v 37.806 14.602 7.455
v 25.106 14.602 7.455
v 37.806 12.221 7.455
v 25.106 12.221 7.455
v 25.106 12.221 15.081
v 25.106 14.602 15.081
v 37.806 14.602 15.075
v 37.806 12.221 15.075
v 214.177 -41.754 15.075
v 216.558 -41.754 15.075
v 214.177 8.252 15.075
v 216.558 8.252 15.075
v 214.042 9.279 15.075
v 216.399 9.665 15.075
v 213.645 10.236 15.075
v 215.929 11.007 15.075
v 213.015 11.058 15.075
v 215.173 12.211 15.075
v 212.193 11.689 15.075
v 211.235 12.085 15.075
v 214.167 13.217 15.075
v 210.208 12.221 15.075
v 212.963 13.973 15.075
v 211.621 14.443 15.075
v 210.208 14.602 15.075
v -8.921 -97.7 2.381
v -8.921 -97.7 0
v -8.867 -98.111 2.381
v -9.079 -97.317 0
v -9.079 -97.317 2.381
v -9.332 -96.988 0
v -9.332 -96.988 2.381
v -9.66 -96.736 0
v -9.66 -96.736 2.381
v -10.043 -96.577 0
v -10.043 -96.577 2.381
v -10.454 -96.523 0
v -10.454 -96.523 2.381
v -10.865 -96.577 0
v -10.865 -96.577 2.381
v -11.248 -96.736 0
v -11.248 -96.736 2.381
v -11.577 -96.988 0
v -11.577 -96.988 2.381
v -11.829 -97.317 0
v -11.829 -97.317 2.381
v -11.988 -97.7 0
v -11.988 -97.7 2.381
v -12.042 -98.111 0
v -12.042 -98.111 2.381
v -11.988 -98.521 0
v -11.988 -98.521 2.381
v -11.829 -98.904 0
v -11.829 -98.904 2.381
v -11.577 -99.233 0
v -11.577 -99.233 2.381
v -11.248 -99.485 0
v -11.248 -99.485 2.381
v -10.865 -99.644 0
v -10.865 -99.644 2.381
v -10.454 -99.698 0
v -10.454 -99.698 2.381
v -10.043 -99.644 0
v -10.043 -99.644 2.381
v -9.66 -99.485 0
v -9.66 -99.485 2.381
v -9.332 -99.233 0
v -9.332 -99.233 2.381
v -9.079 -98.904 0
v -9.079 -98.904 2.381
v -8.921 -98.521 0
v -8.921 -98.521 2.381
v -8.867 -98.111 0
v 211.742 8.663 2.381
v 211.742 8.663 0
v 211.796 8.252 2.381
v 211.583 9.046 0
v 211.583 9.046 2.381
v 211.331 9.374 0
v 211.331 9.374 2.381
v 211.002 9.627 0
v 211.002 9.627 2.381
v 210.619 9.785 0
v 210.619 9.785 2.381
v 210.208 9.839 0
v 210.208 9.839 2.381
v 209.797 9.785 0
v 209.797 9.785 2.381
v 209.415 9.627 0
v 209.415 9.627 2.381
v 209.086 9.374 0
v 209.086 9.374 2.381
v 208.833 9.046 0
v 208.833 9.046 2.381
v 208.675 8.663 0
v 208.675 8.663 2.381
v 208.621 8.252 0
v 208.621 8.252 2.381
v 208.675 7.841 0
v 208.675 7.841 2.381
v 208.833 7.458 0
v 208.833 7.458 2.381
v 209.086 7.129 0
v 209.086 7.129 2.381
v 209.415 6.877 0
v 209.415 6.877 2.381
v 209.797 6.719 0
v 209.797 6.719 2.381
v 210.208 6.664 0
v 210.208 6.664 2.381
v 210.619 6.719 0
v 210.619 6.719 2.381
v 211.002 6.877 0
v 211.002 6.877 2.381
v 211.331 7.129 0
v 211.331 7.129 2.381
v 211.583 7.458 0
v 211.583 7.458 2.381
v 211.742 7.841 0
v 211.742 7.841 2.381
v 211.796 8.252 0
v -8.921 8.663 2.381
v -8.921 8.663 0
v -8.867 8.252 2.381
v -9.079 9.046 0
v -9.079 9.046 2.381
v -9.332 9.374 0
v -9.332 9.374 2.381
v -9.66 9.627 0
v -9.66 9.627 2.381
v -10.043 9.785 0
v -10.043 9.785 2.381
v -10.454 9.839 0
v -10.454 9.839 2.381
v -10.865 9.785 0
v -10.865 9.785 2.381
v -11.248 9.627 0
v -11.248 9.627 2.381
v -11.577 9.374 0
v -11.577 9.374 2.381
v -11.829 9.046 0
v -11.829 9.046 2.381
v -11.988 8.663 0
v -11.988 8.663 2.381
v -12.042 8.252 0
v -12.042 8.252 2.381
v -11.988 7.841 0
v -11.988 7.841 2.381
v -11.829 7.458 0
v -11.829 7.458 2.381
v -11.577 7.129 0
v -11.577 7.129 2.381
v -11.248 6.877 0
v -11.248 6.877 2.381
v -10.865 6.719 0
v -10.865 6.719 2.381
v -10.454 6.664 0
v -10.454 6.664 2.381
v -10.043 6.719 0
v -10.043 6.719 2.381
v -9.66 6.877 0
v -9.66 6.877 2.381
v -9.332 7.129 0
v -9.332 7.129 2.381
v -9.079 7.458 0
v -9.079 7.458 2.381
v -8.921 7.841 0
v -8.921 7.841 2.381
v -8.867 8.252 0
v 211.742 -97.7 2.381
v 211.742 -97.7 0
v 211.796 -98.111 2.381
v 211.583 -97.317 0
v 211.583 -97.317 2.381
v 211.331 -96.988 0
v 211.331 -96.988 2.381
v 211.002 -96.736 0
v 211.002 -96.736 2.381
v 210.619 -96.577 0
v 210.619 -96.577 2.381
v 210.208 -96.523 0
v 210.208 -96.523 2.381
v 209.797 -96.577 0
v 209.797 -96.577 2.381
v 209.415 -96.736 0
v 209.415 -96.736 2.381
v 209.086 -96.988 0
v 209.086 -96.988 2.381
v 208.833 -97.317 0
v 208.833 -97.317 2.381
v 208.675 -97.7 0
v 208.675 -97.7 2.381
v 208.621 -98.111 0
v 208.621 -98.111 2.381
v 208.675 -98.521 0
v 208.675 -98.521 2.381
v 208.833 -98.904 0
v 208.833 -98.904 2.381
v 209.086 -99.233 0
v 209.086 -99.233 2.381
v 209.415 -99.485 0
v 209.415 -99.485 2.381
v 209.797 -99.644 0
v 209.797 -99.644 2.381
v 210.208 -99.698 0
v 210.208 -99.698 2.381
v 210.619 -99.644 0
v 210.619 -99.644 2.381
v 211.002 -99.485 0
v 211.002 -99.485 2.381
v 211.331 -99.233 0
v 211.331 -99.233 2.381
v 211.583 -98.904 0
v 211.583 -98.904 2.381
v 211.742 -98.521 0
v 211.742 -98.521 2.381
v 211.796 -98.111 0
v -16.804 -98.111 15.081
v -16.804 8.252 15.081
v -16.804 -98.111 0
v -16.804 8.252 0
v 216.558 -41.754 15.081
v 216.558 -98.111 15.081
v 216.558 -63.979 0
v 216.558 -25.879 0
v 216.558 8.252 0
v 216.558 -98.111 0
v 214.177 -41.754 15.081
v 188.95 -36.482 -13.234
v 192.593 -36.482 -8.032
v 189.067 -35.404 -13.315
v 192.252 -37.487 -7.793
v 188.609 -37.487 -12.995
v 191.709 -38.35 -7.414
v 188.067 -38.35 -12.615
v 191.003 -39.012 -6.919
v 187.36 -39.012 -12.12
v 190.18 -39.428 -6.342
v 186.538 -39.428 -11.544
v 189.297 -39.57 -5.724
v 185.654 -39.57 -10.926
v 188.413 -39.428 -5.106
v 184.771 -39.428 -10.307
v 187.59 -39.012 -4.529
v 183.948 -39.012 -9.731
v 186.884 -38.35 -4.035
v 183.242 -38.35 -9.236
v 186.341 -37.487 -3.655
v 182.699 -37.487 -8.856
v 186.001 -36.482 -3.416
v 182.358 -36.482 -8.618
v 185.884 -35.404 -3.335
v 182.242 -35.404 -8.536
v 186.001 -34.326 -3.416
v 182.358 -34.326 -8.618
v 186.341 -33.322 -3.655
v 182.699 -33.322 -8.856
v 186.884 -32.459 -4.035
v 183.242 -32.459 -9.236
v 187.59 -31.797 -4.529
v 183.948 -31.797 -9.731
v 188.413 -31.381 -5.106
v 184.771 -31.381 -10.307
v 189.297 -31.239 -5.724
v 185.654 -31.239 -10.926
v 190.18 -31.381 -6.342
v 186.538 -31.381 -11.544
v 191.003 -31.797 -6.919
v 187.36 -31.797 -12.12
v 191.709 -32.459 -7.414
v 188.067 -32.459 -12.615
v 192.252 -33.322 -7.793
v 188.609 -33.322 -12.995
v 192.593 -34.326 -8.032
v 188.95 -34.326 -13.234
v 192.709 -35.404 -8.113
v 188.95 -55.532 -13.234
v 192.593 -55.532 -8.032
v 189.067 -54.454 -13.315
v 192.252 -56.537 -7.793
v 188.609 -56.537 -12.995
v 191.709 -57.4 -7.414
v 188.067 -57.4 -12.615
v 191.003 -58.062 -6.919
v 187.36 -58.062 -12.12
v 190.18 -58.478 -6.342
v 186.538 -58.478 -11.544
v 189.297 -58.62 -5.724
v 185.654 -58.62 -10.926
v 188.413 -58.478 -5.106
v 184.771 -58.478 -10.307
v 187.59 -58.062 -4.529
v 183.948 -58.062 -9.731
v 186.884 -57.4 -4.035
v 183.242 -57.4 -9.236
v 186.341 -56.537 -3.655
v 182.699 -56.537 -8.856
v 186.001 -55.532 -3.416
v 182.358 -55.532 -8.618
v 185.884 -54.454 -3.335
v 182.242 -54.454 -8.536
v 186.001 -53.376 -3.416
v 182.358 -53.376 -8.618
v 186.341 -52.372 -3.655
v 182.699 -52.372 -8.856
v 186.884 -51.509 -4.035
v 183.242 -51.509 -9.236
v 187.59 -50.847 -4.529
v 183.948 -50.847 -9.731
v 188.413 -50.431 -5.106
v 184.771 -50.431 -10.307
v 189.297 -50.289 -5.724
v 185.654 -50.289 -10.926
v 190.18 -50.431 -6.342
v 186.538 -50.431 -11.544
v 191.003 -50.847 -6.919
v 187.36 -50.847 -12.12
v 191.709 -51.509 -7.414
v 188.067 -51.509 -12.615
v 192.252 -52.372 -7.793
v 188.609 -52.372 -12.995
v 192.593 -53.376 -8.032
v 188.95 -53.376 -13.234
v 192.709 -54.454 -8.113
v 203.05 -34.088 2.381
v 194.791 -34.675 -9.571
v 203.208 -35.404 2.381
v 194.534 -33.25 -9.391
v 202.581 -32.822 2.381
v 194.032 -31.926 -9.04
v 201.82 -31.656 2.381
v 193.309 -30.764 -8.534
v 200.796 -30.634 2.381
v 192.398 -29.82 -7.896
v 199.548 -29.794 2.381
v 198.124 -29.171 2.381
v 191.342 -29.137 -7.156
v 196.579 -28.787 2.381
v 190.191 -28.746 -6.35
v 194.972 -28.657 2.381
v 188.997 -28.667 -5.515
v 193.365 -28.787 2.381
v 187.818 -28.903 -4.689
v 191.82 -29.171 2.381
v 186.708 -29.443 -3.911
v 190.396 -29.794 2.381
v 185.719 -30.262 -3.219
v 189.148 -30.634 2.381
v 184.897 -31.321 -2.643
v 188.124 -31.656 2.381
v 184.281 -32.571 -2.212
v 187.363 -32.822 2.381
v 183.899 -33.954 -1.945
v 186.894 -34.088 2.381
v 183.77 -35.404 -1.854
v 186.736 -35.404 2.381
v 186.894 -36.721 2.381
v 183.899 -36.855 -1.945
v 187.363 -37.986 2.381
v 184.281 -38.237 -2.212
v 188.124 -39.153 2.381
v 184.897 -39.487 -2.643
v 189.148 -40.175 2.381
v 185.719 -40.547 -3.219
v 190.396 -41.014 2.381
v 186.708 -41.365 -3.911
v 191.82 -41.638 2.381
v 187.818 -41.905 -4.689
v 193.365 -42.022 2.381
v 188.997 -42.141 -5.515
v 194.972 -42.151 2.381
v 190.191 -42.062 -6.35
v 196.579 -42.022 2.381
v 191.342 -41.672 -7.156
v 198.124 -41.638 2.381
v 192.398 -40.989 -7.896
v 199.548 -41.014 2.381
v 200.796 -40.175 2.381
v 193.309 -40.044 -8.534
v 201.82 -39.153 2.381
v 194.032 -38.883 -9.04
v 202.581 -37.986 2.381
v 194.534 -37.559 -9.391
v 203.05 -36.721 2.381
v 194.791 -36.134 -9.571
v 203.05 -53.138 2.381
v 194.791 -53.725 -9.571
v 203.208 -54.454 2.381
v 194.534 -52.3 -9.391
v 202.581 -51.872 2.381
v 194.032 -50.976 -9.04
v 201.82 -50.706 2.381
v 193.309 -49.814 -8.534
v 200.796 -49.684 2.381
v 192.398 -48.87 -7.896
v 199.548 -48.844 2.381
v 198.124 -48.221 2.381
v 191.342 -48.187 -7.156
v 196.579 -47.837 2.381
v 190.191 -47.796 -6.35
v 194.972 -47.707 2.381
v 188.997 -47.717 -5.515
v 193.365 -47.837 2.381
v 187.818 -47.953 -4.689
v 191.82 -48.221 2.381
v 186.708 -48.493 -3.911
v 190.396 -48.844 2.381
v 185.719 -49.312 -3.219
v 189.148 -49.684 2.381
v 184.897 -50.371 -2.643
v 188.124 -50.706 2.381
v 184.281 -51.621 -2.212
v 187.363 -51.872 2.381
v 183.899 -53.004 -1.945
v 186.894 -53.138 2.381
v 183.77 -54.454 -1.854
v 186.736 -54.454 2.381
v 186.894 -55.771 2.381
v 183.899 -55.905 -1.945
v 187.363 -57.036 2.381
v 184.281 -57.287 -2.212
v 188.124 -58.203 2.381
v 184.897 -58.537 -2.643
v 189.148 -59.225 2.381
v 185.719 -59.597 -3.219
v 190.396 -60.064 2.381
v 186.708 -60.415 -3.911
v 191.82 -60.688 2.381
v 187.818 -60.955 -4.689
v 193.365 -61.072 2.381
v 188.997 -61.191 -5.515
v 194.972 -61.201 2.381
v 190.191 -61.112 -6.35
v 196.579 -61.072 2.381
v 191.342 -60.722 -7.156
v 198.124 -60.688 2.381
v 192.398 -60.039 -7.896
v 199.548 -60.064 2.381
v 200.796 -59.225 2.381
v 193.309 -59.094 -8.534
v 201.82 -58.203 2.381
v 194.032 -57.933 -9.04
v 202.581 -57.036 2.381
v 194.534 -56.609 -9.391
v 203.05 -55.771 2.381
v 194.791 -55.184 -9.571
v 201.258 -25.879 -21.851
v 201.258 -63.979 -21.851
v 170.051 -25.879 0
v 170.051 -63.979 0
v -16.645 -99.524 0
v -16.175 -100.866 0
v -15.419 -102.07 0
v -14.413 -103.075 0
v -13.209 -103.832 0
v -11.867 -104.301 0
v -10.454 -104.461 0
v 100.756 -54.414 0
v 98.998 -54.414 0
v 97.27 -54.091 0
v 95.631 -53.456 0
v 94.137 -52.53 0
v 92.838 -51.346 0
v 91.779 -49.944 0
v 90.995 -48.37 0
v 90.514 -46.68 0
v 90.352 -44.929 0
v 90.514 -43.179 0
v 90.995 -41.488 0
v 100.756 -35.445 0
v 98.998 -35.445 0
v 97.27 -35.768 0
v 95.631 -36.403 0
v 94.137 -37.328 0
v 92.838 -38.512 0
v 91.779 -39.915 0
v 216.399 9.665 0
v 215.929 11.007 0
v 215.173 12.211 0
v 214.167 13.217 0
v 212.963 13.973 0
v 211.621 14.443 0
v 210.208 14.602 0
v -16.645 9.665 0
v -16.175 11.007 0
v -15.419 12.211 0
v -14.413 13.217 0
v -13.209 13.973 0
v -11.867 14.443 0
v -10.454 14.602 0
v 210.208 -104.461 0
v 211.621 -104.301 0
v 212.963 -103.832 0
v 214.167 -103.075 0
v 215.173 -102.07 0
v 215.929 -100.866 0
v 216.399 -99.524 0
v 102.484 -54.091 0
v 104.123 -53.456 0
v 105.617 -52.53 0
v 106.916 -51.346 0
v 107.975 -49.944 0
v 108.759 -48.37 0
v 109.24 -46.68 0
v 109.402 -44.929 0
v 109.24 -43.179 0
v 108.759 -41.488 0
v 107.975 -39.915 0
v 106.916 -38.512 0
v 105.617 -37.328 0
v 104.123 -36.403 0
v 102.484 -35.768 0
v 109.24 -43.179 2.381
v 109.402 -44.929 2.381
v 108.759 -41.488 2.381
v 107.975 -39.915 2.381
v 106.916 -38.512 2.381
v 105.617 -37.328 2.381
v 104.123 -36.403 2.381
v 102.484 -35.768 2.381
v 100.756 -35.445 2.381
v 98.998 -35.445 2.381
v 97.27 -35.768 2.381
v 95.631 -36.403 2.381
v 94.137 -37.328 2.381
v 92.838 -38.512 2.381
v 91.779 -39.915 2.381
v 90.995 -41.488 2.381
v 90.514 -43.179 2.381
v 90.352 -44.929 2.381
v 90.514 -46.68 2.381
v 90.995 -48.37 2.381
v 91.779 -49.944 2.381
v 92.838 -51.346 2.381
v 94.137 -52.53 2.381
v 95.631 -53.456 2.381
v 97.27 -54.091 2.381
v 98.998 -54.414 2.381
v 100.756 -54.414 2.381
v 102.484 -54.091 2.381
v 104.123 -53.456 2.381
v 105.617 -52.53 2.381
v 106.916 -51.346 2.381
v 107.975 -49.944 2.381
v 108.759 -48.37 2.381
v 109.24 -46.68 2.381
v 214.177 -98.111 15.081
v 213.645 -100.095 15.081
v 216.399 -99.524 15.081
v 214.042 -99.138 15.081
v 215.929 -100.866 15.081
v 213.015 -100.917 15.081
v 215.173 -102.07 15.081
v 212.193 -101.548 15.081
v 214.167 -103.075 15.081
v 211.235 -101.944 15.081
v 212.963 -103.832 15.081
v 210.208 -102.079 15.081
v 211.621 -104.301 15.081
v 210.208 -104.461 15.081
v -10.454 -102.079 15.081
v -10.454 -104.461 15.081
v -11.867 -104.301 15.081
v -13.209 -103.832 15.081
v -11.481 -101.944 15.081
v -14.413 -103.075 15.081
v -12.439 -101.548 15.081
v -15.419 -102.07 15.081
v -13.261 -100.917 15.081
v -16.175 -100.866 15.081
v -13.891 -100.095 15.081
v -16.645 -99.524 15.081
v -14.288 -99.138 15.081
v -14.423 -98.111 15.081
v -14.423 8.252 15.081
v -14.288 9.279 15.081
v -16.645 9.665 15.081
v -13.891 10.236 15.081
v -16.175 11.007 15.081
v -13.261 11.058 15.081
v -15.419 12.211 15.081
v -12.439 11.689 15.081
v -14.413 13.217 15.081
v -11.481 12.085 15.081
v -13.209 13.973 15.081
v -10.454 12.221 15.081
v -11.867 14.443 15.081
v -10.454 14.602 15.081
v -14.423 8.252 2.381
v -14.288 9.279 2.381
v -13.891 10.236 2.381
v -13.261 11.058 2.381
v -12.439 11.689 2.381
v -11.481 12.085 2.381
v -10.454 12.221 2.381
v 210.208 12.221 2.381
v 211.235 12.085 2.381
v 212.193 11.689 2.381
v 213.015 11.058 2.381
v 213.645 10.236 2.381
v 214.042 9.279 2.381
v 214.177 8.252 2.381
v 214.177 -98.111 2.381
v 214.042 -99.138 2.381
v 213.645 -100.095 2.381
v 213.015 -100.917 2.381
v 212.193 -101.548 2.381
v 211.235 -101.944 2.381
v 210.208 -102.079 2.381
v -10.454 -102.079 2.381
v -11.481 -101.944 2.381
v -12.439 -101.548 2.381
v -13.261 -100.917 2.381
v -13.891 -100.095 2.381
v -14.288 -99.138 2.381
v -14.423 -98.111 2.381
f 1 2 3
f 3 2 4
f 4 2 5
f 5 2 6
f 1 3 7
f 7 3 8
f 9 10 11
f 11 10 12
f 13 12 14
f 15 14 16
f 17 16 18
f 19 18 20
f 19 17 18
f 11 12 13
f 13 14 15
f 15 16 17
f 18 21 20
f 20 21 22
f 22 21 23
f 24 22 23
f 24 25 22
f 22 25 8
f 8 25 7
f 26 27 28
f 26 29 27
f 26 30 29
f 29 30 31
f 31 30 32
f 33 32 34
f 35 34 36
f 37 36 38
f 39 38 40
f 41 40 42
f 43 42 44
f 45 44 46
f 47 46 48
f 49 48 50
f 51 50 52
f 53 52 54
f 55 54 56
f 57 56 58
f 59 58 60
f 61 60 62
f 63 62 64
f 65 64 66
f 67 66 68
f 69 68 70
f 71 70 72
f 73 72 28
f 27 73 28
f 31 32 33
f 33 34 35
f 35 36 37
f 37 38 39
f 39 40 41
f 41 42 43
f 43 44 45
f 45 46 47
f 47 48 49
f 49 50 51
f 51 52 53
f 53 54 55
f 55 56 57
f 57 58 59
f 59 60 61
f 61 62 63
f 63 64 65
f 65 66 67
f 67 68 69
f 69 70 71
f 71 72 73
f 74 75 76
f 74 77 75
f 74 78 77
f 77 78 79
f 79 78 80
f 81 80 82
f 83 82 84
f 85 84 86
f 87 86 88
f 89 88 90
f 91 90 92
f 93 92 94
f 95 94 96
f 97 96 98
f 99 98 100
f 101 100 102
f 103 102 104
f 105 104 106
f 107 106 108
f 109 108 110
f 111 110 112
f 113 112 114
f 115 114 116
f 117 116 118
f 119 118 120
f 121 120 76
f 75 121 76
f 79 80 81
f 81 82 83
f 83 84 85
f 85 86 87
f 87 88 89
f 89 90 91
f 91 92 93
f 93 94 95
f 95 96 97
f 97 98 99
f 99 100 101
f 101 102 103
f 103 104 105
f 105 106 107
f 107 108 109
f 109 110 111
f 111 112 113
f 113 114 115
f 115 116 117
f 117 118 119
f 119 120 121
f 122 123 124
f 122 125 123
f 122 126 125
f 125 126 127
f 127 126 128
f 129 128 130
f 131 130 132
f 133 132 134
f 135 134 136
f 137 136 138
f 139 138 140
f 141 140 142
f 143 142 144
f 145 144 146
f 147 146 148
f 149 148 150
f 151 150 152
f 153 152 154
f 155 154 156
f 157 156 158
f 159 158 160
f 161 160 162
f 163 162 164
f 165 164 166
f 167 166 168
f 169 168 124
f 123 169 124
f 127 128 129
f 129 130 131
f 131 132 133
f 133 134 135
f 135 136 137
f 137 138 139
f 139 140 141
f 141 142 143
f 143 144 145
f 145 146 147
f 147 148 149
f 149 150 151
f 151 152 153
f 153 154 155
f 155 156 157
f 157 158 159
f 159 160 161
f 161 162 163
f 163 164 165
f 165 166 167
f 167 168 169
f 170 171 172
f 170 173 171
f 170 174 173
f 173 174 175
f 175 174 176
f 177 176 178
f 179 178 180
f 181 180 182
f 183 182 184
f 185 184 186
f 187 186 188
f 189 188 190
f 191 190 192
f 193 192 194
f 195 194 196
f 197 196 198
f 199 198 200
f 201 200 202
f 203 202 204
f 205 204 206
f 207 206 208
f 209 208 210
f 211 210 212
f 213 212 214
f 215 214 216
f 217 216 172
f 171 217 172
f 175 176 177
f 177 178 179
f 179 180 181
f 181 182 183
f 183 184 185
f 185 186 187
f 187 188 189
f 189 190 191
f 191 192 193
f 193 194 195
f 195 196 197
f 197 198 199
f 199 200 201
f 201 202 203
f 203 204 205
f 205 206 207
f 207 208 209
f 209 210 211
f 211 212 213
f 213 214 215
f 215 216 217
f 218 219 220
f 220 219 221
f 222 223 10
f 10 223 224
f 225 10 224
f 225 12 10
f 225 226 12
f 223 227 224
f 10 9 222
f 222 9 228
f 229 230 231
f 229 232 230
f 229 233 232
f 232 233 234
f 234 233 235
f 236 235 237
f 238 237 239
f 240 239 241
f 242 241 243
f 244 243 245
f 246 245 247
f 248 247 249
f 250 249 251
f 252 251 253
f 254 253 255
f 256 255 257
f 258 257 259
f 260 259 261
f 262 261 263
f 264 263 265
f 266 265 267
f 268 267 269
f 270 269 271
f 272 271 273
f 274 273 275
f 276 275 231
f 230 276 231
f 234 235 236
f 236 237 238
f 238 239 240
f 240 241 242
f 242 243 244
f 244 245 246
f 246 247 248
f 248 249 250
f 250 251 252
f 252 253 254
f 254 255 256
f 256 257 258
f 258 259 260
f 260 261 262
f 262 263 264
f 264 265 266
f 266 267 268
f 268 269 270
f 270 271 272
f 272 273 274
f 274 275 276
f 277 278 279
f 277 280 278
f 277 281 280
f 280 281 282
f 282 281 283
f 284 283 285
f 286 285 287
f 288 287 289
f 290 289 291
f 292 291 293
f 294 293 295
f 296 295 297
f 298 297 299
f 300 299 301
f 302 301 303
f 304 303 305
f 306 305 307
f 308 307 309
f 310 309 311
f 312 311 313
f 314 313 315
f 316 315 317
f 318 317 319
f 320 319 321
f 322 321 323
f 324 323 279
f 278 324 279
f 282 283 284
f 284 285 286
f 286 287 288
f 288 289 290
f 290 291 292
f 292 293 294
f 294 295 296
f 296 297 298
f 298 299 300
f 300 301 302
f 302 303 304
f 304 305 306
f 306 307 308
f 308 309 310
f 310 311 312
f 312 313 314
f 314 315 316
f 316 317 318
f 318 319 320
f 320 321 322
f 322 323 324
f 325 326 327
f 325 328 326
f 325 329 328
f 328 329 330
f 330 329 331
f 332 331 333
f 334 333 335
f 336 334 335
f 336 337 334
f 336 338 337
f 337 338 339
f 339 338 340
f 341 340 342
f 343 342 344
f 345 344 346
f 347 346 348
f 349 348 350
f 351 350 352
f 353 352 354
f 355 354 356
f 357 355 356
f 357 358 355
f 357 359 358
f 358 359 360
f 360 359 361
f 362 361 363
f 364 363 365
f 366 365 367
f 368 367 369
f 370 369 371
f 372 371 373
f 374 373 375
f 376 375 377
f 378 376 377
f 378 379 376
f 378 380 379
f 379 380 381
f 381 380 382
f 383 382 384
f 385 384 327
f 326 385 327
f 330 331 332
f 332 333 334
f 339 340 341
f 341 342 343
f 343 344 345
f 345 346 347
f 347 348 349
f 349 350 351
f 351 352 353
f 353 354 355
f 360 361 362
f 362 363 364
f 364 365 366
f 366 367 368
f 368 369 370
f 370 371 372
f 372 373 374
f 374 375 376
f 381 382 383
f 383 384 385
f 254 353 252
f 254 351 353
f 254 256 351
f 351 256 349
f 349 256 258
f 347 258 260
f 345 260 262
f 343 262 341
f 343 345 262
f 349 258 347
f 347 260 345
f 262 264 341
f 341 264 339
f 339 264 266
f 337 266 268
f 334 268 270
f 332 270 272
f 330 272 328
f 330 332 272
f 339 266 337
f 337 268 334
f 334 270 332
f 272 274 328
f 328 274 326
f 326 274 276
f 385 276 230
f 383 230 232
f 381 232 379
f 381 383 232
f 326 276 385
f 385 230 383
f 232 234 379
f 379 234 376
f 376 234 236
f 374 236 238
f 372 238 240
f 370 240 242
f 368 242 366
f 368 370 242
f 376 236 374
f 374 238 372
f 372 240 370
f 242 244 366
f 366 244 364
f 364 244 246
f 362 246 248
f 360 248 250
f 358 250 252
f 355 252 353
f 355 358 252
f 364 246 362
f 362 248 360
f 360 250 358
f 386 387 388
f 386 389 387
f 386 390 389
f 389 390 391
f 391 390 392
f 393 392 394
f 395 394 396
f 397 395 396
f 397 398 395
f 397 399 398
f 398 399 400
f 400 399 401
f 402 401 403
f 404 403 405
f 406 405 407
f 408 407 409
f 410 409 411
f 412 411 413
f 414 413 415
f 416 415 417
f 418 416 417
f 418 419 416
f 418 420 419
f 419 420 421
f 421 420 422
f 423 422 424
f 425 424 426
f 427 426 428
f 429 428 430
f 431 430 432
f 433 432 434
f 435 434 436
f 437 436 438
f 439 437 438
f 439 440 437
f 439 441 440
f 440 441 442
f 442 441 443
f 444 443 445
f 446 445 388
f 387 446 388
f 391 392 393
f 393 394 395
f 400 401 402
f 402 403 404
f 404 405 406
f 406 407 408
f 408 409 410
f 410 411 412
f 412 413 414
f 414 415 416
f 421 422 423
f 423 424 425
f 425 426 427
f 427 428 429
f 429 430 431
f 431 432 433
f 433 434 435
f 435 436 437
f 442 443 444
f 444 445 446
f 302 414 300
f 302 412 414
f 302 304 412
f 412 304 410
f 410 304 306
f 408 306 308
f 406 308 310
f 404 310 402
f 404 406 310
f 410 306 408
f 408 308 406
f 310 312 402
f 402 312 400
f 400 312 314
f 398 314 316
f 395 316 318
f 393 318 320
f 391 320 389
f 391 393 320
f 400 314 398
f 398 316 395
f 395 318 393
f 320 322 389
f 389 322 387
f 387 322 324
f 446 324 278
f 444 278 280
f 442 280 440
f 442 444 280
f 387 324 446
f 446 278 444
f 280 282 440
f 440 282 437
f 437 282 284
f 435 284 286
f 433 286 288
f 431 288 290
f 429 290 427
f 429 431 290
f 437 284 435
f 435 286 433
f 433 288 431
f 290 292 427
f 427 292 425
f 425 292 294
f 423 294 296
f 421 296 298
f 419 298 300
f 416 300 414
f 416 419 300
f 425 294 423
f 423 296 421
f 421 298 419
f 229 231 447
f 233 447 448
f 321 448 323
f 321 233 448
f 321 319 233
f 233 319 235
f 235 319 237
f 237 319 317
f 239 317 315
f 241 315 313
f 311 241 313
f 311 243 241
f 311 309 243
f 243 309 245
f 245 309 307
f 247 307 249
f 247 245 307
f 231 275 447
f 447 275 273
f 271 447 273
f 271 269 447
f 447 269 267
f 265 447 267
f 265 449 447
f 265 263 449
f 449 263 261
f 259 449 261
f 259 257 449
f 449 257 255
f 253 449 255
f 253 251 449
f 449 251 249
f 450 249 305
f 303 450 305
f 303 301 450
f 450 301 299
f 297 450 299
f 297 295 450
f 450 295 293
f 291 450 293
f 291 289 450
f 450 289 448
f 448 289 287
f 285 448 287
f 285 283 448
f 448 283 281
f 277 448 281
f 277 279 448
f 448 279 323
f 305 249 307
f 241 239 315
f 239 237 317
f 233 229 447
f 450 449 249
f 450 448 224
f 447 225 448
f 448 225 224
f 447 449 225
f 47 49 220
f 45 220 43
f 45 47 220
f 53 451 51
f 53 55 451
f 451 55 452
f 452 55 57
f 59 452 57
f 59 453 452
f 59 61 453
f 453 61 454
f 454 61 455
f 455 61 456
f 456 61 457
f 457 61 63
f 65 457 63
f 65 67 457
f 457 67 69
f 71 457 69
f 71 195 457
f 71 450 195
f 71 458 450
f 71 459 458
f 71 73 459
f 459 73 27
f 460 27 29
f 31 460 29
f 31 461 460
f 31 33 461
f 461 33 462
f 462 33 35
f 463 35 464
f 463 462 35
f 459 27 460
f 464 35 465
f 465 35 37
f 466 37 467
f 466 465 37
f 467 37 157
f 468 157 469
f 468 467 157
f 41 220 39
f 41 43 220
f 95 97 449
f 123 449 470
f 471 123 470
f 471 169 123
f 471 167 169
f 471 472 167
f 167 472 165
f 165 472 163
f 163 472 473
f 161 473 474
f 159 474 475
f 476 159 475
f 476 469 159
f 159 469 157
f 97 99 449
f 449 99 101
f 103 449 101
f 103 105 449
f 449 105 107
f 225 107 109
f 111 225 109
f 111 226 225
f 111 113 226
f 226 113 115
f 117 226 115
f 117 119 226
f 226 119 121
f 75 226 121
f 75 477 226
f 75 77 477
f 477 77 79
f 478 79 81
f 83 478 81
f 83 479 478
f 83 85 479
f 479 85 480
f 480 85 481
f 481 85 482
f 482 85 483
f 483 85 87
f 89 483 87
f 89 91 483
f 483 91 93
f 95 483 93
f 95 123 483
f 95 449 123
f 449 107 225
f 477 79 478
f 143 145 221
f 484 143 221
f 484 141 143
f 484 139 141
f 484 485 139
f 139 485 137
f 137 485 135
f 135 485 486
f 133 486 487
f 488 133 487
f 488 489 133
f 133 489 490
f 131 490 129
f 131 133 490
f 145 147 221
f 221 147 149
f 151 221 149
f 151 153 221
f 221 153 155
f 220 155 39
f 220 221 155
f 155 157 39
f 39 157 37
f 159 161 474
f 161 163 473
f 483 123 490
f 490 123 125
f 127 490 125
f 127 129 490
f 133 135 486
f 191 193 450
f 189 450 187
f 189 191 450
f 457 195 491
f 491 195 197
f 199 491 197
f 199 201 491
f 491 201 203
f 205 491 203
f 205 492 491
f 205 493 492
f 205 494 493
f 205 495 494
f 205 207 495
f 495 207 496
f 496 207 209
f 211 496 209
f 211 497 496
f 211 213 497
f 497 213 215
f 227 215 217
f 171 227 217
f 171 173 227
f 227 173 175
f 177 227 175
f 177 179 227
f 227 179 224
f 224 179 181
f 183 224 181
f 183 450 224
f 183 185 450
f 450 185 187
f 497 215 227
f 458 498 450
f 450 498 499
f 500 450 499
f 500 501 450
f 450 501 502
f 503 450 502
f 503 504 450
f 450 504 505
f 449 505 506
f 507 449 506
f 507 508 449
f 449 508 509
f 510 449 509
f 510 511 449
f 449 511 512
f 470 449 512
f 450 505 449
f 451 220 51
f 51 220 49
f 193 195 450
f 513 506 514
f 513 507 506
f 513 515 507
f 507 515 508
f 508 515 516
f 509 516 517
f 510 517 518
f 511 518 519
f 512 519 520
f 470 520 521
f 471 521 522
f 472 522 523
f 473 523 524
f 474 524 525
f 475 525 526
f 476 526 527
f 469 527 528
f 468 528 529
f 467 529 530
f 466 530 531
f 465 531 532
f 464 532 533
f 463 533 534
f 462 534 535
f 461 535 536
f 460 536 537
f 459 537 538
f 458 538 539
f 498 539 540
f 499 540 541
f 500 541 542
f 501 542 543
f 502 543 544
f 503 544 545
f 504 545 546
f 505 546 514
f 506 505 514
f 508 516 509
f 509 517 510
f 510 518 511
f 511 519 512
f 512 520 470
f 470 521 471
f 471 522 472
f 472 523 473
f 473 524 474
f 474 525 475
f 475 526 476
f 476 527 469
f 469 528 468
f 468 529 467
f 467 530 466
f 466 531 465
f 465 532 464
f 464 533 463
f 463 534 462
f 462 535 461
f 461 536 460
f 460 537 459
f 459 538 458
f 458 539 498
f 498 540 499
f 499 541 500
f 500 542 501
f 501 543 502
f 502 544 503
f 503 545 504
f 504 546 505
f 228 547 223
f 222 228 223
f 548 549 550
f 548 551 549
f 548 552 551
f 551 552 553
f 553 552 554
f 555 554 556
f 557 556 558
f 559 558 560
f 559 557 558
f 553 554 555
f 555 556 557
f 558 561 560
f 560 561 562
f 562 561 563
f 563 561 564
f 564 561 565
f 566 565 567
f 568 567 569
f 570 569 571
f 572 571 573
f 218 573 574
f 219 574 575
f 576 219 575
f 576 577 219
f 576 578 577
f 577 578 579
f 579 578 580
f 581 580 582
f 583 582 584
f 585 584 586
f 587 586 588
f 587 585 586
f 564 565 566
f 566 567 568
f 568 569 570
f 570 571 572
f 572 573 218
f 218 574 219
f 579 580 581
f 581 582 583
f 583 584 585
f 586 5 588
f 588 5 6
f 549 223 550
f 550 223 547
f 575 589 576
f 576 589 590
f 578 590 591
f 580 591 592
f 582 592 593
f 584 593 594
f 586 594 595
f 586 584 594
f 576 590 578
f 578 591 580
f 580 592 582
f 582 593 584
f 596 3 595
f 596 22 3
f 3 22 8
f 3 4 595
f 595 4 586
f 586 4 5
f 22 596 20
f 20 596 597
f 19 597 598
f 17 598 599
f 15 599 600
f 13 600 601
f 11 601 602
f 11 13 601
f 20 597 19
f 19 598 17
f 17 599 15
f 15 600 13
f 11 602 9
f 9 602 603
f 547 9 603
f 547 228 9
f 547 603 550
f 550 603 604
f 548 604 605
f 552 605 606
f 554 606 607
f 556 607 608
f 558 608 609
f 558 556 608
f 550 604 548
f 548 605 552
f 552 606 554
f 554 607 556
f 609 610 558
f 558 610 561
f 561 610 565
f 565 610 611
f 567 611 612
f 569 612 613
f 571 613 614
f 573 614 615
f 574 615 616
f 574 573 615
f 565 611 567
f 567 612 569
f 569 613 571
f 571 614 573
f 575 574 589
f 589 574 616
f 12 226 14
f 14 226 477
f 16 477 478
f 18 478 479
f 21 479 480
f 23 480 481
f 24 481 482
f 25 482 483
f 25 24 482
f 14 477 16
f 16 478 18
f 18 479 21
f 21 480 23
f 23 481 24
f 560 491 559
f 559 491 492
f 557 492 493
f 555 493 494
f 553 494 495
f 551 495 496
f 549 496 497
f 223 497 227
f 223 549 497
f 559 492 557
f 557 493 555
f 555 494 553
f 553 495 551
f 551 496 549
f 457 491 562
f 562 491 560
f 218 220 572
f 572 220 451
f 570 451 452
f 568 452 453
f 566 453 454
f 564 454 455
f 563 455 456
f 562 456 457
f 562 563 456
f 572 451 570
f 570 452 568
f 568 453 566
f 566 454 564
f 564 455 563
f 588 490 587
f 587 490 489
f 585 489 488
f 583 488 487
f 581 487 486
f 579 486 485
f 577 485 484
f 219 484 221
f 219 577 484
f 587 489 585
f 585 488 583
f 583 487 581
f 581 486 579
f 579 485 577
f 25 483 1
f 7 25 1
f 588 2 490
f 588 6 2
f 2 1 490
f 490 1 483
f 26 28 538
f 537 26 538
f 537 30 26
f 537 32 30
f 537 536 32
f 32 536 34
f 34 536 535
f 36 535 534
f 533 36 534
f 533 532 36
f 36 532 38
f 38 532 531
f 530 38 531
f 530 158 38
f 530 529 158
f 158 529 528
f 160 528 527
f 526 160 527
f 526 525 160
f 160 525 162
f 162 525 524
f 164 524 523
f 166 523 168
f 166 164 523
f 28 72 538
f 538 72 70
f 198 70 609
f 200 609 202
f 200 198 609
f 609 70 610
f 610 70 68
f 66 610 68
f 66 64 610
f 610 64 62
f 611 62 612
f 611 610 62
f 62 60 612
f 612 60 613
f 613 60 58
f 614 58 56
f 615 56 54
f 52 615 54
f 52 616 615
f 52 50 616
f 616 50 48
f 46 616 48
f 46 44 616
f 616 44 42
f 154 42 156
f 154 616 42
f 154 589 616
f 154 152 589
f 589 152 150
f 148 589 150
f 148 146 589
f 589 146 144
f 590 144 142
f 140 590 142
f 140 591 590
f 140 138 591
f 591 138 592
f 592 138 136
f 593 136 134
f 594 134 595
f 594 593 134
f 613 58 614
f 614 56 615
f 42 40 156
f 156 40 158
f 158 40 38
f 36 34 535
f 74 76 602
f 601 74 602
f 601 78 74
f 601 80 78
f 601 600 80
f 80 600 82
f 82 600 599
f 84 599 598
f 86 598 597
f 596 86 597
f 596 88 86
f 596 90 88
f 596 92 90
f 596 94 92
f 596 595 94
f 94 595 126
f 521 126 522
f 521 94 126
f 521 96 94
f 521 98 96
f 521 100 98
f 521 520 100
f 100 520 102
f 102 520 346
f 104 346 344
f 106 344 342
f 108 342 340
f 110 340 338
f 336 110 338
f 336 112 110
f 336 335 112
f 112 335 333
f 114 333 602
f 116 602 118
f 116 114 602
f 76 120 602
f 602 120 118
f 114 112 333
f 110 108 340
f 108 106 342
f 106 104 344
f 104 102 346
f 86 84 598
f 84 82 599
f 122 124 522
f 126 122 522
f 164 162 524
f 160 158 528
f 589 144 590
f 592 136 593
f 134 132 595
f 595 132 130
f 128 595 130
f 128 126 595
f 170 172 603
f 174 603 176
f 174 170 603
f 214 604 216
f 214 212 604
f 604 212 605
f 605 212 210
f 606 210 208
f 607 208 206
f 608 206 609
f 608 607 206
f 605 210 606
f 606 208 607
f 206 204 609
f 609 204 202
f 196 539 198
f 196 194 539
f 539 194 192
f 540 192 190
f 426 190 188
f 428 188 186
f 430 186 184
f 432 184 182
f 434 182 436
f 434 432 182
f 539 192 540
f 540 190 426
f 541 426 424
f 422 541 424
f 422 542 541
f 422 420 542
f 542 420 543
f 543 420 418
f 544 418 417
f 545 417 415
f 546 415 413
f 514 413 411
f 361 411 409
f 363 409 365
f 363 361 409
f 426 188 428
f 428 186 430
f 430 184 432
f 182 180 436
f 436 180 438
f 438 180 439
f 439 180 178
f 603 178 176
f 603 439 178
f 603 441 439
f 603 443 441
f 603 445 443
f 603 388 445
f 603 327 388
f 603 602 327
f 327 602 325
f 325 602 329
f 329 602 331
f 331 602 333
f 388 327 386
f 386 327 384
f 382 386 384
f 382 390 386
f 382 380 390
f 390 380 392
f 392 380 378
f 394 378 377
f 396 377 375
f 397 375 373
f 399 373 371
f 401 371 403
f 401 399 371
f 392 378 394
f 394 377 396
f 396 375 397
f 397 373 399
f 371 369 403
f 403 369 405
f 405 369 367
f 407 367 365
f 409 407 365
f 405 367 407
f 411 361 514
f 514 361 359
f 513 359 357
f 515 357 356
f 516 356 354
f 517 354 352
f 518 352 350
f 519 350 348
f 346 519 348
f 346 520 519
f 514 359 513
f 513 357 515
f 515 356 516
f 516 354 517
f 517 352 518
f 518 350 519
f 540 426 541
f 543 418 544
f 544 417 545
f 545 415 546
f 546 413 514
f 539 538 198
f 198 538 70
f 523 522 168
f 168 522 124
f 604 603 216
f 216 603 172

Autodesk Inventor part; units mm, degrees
ref_plane "YZ Plane" through (0, 0, 0) normal (1, 0, 0) x (0, 1, 0)
ref_plane "XZ Plane" through (0, 0, 0) normal (0, 1, 0) x (-1, 0, 0)
sketch "Sketch1" plane through (0, 0, 0) normal (0, 0, 1) x (1, 0, 0)
  line L0 (-10.4542, 14.6019) -> (210.2083, 14.6019)
  line L1 (216.5583, 8.2519) -> (216.5583, -98.1106)
  line L2 (210.2083, -104.4606) -> (-10.4542, -104.4606)
  line L3 (-16.8042, -98.1106) -> (-16.8042, 8.2519)
  line L4 (99.877, 12.2207) -> (-10.4542, 12.2207)
  line L5 (-14.423, 8.2519) -> (-14.423, -44.9293)
  line L6 (99.877, 12.2207) -> (210.2083, 12.2207)
  line L7 (214.177, 8.2519) -> (214.177, -44.9293)
  line L8 (99.877, -102.0793) -> (210.2083, -102.0793)
  line L9 (214.177, -98.1106) -> (214.177, -44.9293)
  line L10 (99.877, -102.0793) -> (-10.4542, -102.0793)
  line L11 (-14.423, -98.1106) -> (-14.423, -44.9293)
  arc A0 (-10.4542, 14.6019) -> (-16.8042, 8.2519) centre (-10.4542, 8.2519) ccw
  arc A1 (216.5583, 8.2519) -> (210.2083, 14.6019) centre (210.2083, 8.2519) ccw
  arc A2 (210.2083, -104.4606) -> (216.5583, -98.1106) centre (210.2083, -98.1106) ccw
  arc A3 (-16.8042, -98.1106) -> (-10.4542, -104.4606) centre (-10.4542, -98.1106) ccw
  arc A4 (-10.4542, 12.2207) -> (-14.423, 8.2519) centre (-10.4542, 8.2519) ccw
  arc A5 (214.177, 8.2519) -> (210.2083, 12.2207) centre (210.2083, 8.2519) ccw
  arc A6 (210.2083, -102.0793) -> (214.177, -98.1106) centre (210.2083, -98.1106) ccw
  arc A7 (-14.423, -98.1106) -> (-10.4542, -102.0793) centre (-10.4542, -98.1106) ccw
  point P0 (0, 0)
  point P1 (-16.8042, 14.6019)
  point P2 (216.5583, -104.4606)
  point P3 (216.5583, 14.6019)
  point P4 (-16.8042, -104.4606)
  dimension "d0" = 233.3625
  dimension "d1" = 119.0625
  dimension "d9" = 6.35
  dimension "d10" = 3.9688
extrude "Extrusion1" add sketch "Sketch1" along normal blind 2.3813 contours L0 A1 L1 A2 L2 A3 L3 A0 | L6 A5 L7 L9 A6 L8 L10 A7 L11 L5 A4 L4
sketch "Sketch2" plane through (0, 0, 2.3813) normal (0, 0, 1) x (1, 0, 0)
  line L0 (210.2083, 14.6019) -> (-10.4542, 14.6019) projected
  arc A0 (-10.4542, 14.6019) -> (-16.8042, 8.2519) centre (-10.4542, 8.2519) ccw projected
  line L1 (-16.8042, 8.2519) -> (-16.8042, -98.1106) projected
  arc A1 (-16.8042, -98.1106) -> (-10.4542, -104.4606) centre (-10.4542, -98.1106) ccw projected
  line L2 (-10.4542, -104.4606) -> (210.2083, -104.4606) projected
  arc A2 (210.2083, -104.4606) -> (216.5583, -98.1106) centre (210.2083, -98.1106) ccw projected
  line L3 (216.5583, -98.1106) -> (216.5583, 8.2519) projected
  arc A3 (216.5583, 8.2519) -> (210.2083, 14.6019) centre (210.2083, 8.2519) ccw projected
  line L4 (99.877, 12.2207) -> (-10.4542, 12.2207)
  line L5 (-14.423, 8.2519) -> (-14.423, -44.9293)
  line L6 (99.877, -102.0793) -> (-10.4542, -102.0793)
  line L7 (-14.423, -98.1106) -> (-14.423, -44.9293)
  line L8 (99.877, -102.0793) -> (210.2083, -102.0793)
  line L9 (214.177, -98.1106) -> (214.177, -44.9293)
  line L10 (99.877, 12.2207) -> (210.2083, 12.2207)
  line L11 (214.177, 8.2519) -> (214.177, -44.9293)
  arc A4 (-10.4542, 12.2207) -> (-14.423, 8.2519) centre (-10.4542, 8.2519) ccw
  arc A5 (214.177, 8.2519) -> (210.2083, 12.2207) centre (210.2083, 8.2519) ccw
  arc A6 (210.2083, -102.0793) -> (214.177, -98.1106) centre (210.2083, -98.1106) ccw
  arc A7 (-14.423, -98.1106) -> (-10.4542, -102.0793) centre (-10.4542, -98.1106) ccw
  point P0 (0, 0)
  dimension "d15" = 3.9688
extrude "Extrusion2" add sketch "Sketch2" along normal blind 2.3813
sketch "Sketch3" plane through (0, 0, 4.7625) normal (0, 0, 1) x (1, 0, 0)
  arc A0 (-10.4542, 12.2207) -> (-14.423, 8.2519) centre (-10.4542, 8.2519) ccw projected
  arc A1 (214.177, 8.2519) -> (210.2083, 12.2207) centre (210.2083, 8.2519) ccw projected
  line L0 (214.177, 8.2519) -> (214.177, -98.1106) projected
  arc A2 (210.2083, -102.0793) -> (214.177, -98.1106) centre (210.2083, -98.1106) ccw projected
  line L1 (210.2083, -102.0793) -> (-10.4542, -102.0793) projected
  arc A3 (-14.423, -98.1106) -> (-10.4542, -102.0793) centre (-10.4542, -98.1106) ccw projected
  line L2 (-14.423, -98.1106) -> (-14.423, 8.2519) projected
  arc A4 (-10.4542, 14.6019) -> (-16.8042, 8.2519) centre (-10.4542, 8.2519) ccw projected
  line L3 (-16.8042, 8.2519) -> (-16.8042, -98.1106) projected
  arc A5 (-16.8042, -98.1106) -> (-10.4542, -104.4606) centre (-10.4542, -98.1106) ccw projected
  line L4 (-10.4542, -104.4606) -> (210.2083, -104.4606) projected
  arc A6 (210.2083, -104.4606) -> (216.5583, -98.1106) centre (210.2083, -98.1106) ccw projected
  line L5 (216.5583, -98.1106) -> (216.5583, 8.2519) projected
  arc A7 (216.5583, 8.2519) -> (210.2083, 14.6019) centre (210.2083, 8.2519) ccw projected
  line L6 (214.177, -44.9293) -> (214.177, -41.7543)
  line L7 (214.177, -41.7543) -> (216.5583, -41.7543)
  line L8 (216.5583, -41.7543) -> (216.5583, -44.9293)
  line L9 (216.5583, -44.9293) -> (216.5583, -48.1043)
  line L10 (216.5583, -48.1043) -> (214.177, -48.1043)
  line L11 (214.177, -48.1043) -> (214.177, -44.9293)
  line L12 (-14.423, -44.9293) -> (-14.423, -41.7543)
  line L13 (-14.423, -41.7543) -> (-16.8042, -41.7543)
  line L14 (-16.8042, -41.7543) -> (-16.8042, -44.9293)
  line L15 (-16.8042, -44.9293) -> (-16.8042, -48.1043)
  line L16 (-16.8042, -48.1043) -> (-14.423, -48.1043)
  line L17 (-14.423, -48.1043) -> (-14.423, -44.9293)
  line L18 (-10.4542, 14.6019) -> (25.1058, 14.6019)
  line L19 (25.1058, 14.6019) -> (25.1058, 12.2207)
  line L20 (37.8058, 14.6019) -> (37.8058, 12.2207)
  line L21 (-10.4542, 12.2207) -> (25.1058, 12.2207)
  line L22 (37.8058, 12.2207) -> (210.2083, 12.2207)
  line L23 (37.8058, 14.6019) -> (210.2083, 14.6019)
  point P0 (0, 0)
  dimension "d18" = 3.175
  dimension "d19" = 3.175
  dimension "d20" = 3.175
  dimension "d21" = 3.175
  dimension "d93" = 35.56
  dimension "d94" = 12.7
extrude "Extrusion3" add sketch "Sketch3" along normal blind 10.3188 contours A0 L2 L13 L3 A4 L18 L19 L21 | L2 A3 L1 A2 L0 L10 L5 A6 L4 A5 L3 L16
sketch "Sketch4" plane through (0, 0, 15.0813) normal (0, 0, 1) x (1, 0, 0)
  line L0 (214.177, -41.7543) -> (216.5583, -41.7543)
  line L1 (216.5583, -41.7543) -> (216.5583, -48.1043)
  line L2 (216.5583, -48.1043) -> (214.177, -48.1043)
  line L3 (214.177, -48.1043) -> (214.177, -41.7543)
  line L4 (-16.8042, -41.7543) -> (-14.423, -41.7543)
  line L5 (-14.423, -41.7543) -> (-14.423, -48.1043)
  line L6 (-14.423, -48.1043) -> (-16.8042, -48.1043)
  line L7 (-16.8042, -48.1043) -> (-16.8042, -41.7543)
  point P0 (0, 0)
  dimension "d24" = 2.3813
  dimension "d25" = 6.35
  dimension "d26" = 2.3813
  dimension "d27" = 6.35
extrude "Extrusion4" add sketch "Sketch4" against normal blind 7.9375
sketch "Sketch5" plane through (0, 0, 0) normal (0, 0, -1) x (-1, 0, 0)
  arc A0 (-210.2083, 14.6019) -> (-216.5583, 8.2519) centre (-210.2083, 8.2519) ccw projected
  line L0 (-210.2083, 8.2519) -> (-99.877, 8.2519)
  line L1 (-99.877, 8.2519) -> (-99.877, -44.9293)
  line L2 (-99.877, -44.9293) -> (-210.2083, -44.9293)
  line L3 (-210.2083, -44.9293) -> (-210.2083, 8.2519)
  point P0 (0, 0)
hole "Hole1" at (99.877, -44.9293, 0) direction (0, 0, 1) diameter 19.05 end through all
sketch "Sketch6" plane through (0, 0, 0) normal (0, 0, -1) x (-1, 0, 0)
  line L0 (-216.5583, 8.2519) -> (-216.5583, -98.1106) projected
  line L1 (-216.5583, -25.8793) -> (-216.5583, -63.9793)
  line L2 (-216.5583, -63.9793) -> (-170.0509, -63.9793)
  line L3 (-170.0509, -63.9793) -> (-170.0509, -25.8793)
  line L4 (-170.0509, -25.8793) -> (-216.5583, -25.8793)
  point P0 (0, 0)
  dimension "d39" = 38.1
  dimension "d43" = 46.5074
extrude "Extrusion6" add sketch "Sketch6" along normal blind 38.1
sketch "Sketch8" plane through (170.0509, -25.8793, 0) normal (0, 1, 0) x (1, 0, 0)
  line L0 (46.5074, 0) -> (13.7658, 46.7599)
  point P0 (46.5074, 38.1)
  point P1 (0, 38.1)
  point P2 (-170.0509, 0)
split body "Split1" sketch "Sketch8" result one side removed curves L0 removed pieces at (208.0752, -38.5793, -12.9868)
sketch "Sketch9" plane through (170.0509, -25.8793, 0) normal (0, 1, 0) x (1, 0, 0)
  line L0 (0, 0) -> (64.0379, 44.8398)
  line L1 (0, 0) -> (78.1758, 0) construction
  line L2 (0, 0) -> (0, 38.1)
  point P0 (-170.0509, 0)
  dimension "d48" = 35
split body "Split2" sketch "Sketch9" result one side removed curves L2 L0 removed pieces at (170.5509, -51.2793, -12.7)
ref_plane "Work Plane1" through (204.9, -63.9793, -16.6497) normal (-0.5735764, 0, -0.819152) x (-0.819152, 0, 0.5735764)
sketch "Sketch10" plane through (204.9, -63.9793, -16.6497) normal (-0.5735764, 0, -0.819152) x (-0.819152, 0, 0.5735764)
  line L0 (0, 38.1) -> (38.0966, 38.1) projected
  line L1 (0, 0) -> (0, 38.1) projected
  line L2 (38.0966, 0) -> (0, 0) projected
  line L3 (38.0966, 38.1) -> (38.0966, 0) projected
  line L4 (19.0483, 38.1) -> (19.0483, 28.575)
  line L5 (19.0483, 0) -> (19.0483, 9.525)
  point P0 (177.3942, 63.9793)
  dimension "d50" = 9.525
  dimension "d51" = 9.525
hole "Hole2" at (189.2966, -35.4043, -5.724) at (189.2966, -54.4543, -5.724) direction (0.5735764, 0, 0.819152) diameter 13.4938 end through all
sketch "Sketch11" plane through (204.9, -63.9793, -16.6497) normal (-0.5735764, 0, -0.819152) x (-0.819152, 0, 0.5735764)
  line L0 (0, 38.1) -> (38.0966, 38.1) projected
  line L1 (0, 0) -> (0, 38.1) projected
  line L2 (38.0966, 0) -> (0, 0) projected
  line L3 (38.0966, 38.1) -> (38.0966, 0) projected
  line L4 (19.0483, 38.1) -> (19.0483, 28.575)
  line L5 (19.0483, 0) -> (19.0483, 9.525)
  point P0 (177.3942, 63.9793)
  dimension "d59" = 9.525
  dimension "d60" = 9.525
hole "Hole3" at (189.2966, -35.4043, -5.724) at (189.2966, -54.4543, -5.724) direction (-0.5735764, 0, -0.819152) diameter 8.3312 end through all
sketch "Sketch12" plane through (0, 0, 4.7625) normal (0, 0, 1) x (1, 0, 0)
  line L0 (216.5583, -41.7543) -> (214.177, -41.7543) projected
  line L1 (214.177, 8.2519) -> (214.177, -48.1043) projected
  line L2 (216.5583, -41.7543) -> (214.177, -41.7543)
  line L3 (214.177, -41.7543) -> (214.177, -48.1043)
  line L4 (214.177, -48.1043) -> (216.5583, -48.1043)
  line L5 (216.5583, -48.1043) -> (216.5583, -41.7543)
  point P0 (0, 0)
extrude "Extrusion7" add sketch "Sketch12" along normal blind 2.3876
sketch "Sketch13" plane through (0, 0, 4.7625) normal (0, 0, 1) x (1, 0, 0)
  line L0 (-14.423, -41.7543) -> (-16.8042, -41.7543) projected
  line L1 (-16.8042, -41.7543) -> (-16.8042, -48.1043) projected
  line L2 (-14.423, -41.7543) -> (-16.8042, -41.7543)
  line L3 (-16.8042, -41.7543) -> (-16.8042, -48.1043)
  line L4 (-16.8042, -48.1043) -> (-14.423, -48.1043)
  line L5 (-14.423, -48.1043) -> (-14.423, -41.7543)
  point P0 (0, 0)
extrude "Extrusion8" add sketch "Sketch13" along normal blind 2.3876
sketch "Sketch16" plane through (0, 0, 0) normal (0, 0, -1) x (-1, 0, 0)
  arc A0 (-210.2083, 14.6019) -> (-216.5583, 8.2519) centre (-210.2083, 8.2519) ccw projected
  arc A1 (-216.5583, -98.1106) -> (-210.2083, -104.4606) centre (-210.2083, -98.1106) ccw projected
  arc A2 (10.4542, -104.4606) -> (16.8042, -98.1106) centre (10.4542, -98.1106) ccw projected
  arc A3 (16.8042, 8.2519) -> (10.4542, 14.6019) centre (10.4542, 8.2519) ccw projected
  point P0 (0, 0)
hole "Hole6" at (210.2083, 8.2519, 0) at (-10.4542, 8.2519, 0) at (-10.4542, -98.1106, 0) at (210.2083, -98.1106, 0) direction (0, 0, 1) diameter 3.175 end through all
sketch "Sketch17" plane through (0, 0, 4.7625) normal (0, 0, 1) x (1, 0, 0)
  line L0 (214.177, -41.7543) -> (216.5583, -41.7543) projected
  line L1 (216.5583, -41.7543) -> (216.5583, 8.2519) projected
  arc A0 (216.5583, 8.2519) -> (210.2083, 14.6019) centre (210.2083, 8.2519) ccw projected
  line L2 (210.2083, 14.6019) -> (25.1058, 14.6019) projected
  line L3 (25.1058, 12.2207) -> (210.2083, 12.2207) projected
  arc A1 (214.177, 8.2519) -> (210.2083, 12.2207) centre (210.2083, 8.2519) ccw projected
  line L4 (214.177, 8.2519) -> (214.177, -41.7543) projected
  line L5 (25.1058, 14.6019) -> (37.8058, 14.6019)
  line L6 (37.8058, 14.6019) -> (37.8058, 12.2207)
  point P0 (0, 0)
  dimension "d95" = 12.7
extrude "Extrusion9" add sketch "Sketch17" along normal blind 10.3124
sketch "Sketch18" plane through (0, 0, 4.7625) normal (0, 0, 1) x (1, 0, 0)
  line L0 (37.8058, 12.2207) -> (37.8058, 14.6019) projected
  line L1 (37.8058, 14.6019) -> (25.1058, 14.6019) projected
  line L2 (25.1058, 14.6019) -> (25.1058, 12.2207) projected
  line L3 (25.1058, 12.2207) -> (37.8058, 12.2207) projected
  point P0 (0, 0)
extrude "Extrusion10" add sketch "Sketch18" along normal blind 2.6924
properties part number "Slave Tablet Enclosure"
